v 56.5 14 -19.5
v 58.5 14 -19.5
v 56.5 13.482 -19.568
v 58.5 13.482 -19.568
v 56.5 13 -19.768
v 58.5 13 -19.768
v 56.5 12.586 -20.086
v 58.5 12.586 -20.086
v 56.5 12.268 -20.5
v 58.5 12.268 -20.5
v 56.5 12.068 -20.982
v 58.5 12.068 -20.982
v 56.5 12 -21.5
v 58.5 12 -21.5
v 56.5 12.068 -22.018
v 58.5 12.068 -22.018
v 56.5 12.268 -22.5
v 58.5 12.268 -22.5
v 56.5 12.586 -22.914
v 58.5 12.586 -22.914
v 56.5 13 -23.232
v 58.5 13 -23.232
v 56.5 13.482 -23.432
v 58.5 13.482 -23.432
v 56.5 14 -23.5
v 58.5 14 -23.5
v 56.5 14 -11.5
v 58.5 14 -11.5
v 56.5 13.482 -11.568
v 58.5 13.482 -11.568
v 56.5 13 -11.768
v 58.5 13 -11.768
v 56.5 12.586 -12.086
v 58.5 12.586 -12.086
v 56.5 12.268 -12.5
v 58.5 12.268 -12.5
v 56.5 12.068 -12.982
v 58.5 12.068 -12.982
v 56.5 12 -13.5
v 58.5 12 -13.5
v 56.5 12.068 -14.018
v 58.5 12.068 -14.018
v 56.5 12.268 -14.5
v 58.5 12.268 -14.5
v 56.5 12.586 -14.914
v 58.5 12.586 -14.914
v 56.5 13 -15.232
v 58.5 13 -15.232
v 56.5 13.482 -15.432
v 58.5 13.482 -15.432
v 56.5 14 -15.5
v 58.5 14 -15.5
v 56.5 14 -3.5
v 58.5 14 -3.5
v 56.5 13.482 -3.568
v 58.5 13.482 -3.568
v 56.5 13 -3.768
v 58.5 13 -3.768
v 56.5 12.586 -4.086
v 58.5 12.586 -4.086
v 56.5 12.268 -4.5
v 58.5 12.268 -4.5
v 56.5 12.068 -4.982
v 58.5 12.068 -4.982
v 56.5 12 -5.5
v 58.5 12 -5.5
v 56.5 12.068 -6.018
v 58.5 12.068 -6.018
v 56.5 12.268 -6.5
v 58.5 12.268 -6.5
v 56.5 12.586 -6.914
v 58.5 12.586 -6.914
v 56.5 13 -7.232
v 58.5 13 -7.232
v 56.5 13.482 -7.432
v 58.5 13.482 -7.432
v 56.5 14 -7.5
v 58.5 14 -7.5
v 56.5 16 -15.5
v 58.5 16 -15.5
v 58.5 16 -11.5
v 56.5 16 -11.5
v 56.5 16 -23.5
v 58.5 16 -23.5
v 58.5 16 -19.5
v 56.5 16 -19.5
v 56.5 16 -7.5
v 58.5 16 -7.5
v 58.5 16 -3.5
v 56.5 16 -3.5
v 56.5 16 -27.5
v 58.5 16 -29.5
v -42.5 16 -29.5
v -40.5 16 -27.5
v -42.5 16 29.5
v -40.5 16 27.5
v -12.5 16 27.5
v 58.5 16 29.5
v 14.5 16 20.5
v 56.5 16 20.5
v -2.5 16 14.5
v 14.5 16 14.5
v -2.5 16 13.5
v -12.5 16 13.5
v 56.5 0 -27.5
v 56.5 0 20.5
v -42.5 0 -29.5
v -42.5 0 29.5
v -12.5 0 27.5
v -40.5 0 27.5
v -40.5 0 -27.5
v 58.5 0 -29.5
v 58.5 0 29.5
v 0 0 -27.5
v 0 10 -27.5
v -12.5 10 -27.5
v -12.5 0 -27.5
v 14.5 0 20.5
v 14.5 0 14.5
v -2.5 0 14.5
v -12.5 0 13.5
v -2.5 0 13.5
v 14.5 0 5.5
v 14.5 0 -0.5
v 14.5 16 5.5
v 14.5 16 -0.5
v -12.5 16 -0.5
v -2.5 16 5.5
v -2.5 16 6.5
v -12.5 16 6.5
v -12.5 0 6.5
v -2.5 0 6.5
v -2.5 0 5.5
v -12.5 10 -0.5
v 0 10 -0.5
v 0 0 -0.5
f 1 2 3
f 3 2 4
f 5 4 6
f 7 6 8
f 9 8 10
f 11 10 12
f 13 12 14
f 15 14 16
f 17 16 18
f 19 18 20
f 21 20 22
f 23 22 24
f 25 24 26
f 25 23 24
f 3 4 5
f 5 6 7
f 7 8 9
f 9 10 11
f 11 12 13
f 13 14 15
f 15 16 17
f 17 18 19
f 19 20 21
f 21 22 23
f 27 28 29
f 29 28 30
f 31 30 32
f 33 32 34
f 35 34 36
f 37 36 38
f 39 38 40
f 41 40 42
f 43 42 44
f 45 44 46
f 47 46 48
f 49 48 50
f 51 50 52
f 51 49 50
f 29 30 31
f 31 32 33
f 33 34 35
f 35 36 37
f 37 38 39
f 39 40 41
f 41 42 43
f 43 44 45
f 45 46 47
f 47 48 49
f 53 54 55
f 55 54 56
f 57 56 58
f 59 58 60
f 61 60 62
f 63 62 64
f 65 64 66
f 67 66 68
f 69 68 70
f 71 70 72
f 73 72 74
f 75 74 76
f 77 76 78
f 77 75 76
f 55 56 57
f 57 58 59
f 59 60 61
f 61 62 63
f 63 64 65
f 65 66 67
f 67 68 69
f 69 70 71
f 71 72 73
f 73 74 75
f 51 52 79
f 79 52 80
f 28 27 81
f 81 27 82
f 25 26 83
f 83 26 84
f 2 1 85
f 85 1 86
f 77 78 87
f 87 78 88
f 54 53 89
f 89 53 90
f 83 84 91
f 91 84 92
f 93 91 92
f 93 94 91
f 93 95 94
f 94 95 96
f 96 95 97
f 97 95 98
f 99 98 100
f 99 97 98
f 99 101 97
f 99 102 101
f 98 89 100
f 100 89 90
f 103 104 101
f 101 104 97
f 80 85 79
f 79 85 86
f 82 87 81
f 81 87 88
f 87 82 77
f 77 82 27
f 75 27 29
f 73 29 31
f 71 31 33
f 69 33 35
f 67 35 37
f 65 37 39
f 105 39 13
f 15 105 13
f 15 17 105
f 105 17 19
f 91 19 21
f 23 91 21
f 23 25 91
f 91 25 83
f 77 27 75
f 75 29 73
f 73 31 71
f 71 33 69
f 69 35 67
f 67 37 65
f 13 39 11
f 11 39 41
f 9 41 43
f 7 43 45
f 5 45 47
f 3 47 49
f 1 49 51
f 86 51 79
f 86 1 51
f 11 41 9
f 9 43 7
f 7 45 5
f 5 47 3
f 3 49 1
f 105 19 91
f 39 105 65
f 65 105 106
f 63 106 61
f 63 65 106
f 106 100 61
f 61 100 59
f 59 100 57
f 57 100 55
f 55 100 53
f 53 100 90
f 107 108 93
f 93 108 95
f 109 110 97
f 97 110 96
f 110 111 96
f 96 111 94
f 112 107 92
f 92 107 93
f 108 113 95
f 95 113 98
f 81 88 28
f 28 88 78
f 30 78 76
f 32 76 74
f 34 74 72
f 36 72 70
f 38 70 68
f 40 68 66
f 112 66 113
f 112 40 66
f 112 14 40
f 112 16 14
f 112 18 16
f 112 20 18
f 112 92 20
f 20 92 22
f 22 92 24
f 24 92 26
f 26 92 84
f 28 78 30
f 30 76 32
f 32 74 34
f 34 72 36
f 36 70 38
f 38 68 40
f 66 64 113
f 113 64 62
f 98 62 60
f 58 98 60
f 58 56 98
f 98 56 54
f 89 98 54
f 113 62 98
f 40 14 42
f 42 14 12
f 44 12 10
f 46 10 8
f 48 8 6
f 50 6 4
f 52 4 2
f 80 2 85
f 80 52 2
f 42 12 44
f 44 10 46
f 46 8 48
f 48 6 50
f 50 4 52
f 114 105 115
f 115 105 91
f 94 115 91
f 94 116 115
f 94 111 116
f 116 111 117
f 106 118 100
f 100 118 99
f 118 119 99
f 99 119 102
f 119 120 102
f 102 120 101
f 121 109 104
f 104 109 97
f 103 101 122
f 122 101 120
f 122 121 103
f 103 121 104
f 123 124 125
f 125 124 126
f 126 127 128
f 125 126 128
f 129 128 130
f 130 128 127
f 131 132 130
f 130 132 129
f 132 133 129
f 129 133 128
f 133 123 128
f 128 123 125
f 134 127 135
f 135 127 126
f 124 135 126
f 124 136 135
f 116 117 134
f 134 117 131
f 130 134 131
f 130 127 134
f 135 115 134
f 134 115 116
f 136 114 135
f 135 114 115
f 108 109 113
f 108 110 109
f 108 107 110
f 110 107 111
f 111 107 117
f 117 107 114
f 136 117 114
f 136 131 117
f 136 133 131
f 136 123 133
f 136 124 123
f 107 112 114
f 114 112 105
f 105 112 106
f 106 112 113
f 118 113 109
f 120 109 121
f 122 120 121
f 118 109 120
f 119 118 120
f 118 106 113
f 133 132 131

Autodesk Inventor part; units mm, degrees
ref_plane "YZ Plane" through (0, 0, 0) normal (1, 0, 0) x (0, 1, 0)
ref_plane "XZ Plane" through (0, 0, 0) normal (0, 1, 0) x (-1, 0, 0)
ref_plane "XY Plane" through (0, 0, 0) normal (0, 0, 1) x (1, 0, 0)
sketch "Sketch1" plane through (0, 0, 0) normal (0, 1, 0) x (-1, 0, 0)
  line L0 (-58.5, 29.5) -> (42.5, 29.5)
  line L1 (42.5, 29.5) -> (42.5, -29.5)
  line L2 (42.5, -29.5) -> (-58.5, -29.5)
  line L3 (-58.5, -29.5) -> (-58.5, 29.5)
  line L4 (0, 10) -> (2.5, 10)
  line L5 (2.5, 10) -> (12.5, 10)
  line L6 (-14.5, 20.5) -> (-56.5, 20.5)
  line L7 (-56.5, 20.5) -> (-56.5, -0.5)
  line L8 (-56.5, -0.5) -> (-14.5, -0.5)
  line L9 (-14.5, -0.5) -> (-14.5, 20.5)
  line L10 (12.5, 13.5) -> (12.5, 6.5)
  line L11 (12.5, 6.5) -> (2.5, 6.5)
  line L12 (12.5, 13.5) -> (2.5, 13.5)
  line L13 (40.5, 27.5) -> (12.5, 27.5)
  line L14 (12.5, 27.5) -> (12.5, -27.5)
  line L15 (12.5, -27.5) -> (40.5, -27.5)
  line L16 (40.5, -27.5) -> (40.5, 27.5)
  line L17 (12.5, 27.5) -> (12.5, 29.5)
  line L18 (12.5, -27.5) -> (12.5, -29.5)
  line L19 (0, 0) -> (0, 10)
  line L20 (2.5, 13.5) -> (2.5, 6.5)
  line L21 (2.5, 14.5) -> (2.5, 5.5)
  line L22 (2.5, 5.5) -> (-14.5, 5.5)
  line L23 (2.5, 14.5) -> (-14.5, 14.5)
  line L24 (12.5, 0) -> (0, 0)
  line L25 (-56.5, -0.5) -> (12.5, -0.5)
  line L26 (12.5, -0.5) -> (12.5, -27.5)
  line L27 (12.5, -27.5) -> (-56.5, -27.5)
  line L28 (-56.5, -27.5) -> (-56.5, -0.5)
  line L29 (2.5, 5.5) -> (2.5, 0)
  point P0 (-8, 29.5)
  point P1 (0, 5.5)
  dimension "d2" = 2.5
  dimension "d3" = 10
  dimension "d4" = 7
  dimension "d5" = 21
  dimension "d6" = 42
  dimension "d9" = 28
  dimension "d10" = 55
  dimension "d13" = 10
  dimension "d14" = 9
  dimension "d15" = 17
  dimension "d16" = 2
  dimension "d17" = 2
  dimension "d20" = 2
  dimension "d28" = 101
  dimension "d29" = 59
  dimension "d34" = 42
  dimension "d35" = 27
  dimension "d37" = 12.5
sketch "Sketch2" plane through (0, 0, 0) normal (0, 1, 0) x (-1, 0, 0)
  line L0 (0, 0) -> (12.5, 0) projected
  line L1 (40.5, -27.5) -> (-56.5, -27.5) projected
  line L2 (12.5, 0) -> (12.5, -27.5)
  line L3 (12.5, 0) -> (0, 0)
  line L4 (0, 0) -> (0, -27.5)
  line L5 (0, -27.5) -> (12.5, -27.5)
  line L6 (12.5, -27.5) -> (12.5, 0)
  dimension "d36" = 56.5
extrude "Extrusion5" add sketch "Sketch2" along normal blind 10
extrude "Extrusion6" add sketch "Sketch1" along normal blind 16 contours L0 L17 L14 L12 L21 L23 L9 L6 L7 L28 L27 L18 L2 L3 | L0 L1 L2 L18 L15 L16 L13 L17 | L25 L9 L22 L19 L24 L14 | L14 L24 L29 L21 L11 | L24 L19 L22 L29
sketch "Sketch3" plane through (0, 16, 0) normal (0, 1, 0) x (1, 0, 0)
  line L0 (56.5, 3.5) -> (56.5, 7.5)
  line L1 (56.5, 7.5) -> (56.5, 11.5)
  line L2 (56.5, 11.5) -> (56.5, 15.5)
  line L3 (56.5, 15.5) -> (56.5, 19.5)
  line L4 (56.5, 19.5) -> (56.5, 23.5)
  line L5 (56.5, 23.5) -> (56.5, 27.5)
  line L6 (58.5, -29.5) -> (58.5, 29.5) projected
  line L7 (56.5, 23.5) -> (58.5, 23.5)
  line L8 (58.5, -29.5) -> (58.5, 29.5) projected
  line L9 (56.5, 19.5) -> (58.5, 19.5)
  line L10 (56.5, 15.5) -> (58.5, 15.5)
  line L11 (56.5, 11.5) -> (58.5, 11.5)
  line L12 (56.5, 7.5) -> (58.5, 7.5)
  line L13 (56.5, 3.5) -> (58.5, 3.5)
  point P0 (0, 0)
  dimension "d30" = 4
extrude "Extrusion7" cut sketch "Sketch3" against normal blind 4 contours L0 L12 L6 L13 | L2 L10 L6 L11 | L4 L7 L6 L9
fillet "Fillet1" radius 2 6 edges at (57.5, 12, -3.5) (57.5, 12, -11.5) (57.5, 12, -19.5) (57.5, 12, -23.5) (57.5, 12, -15.5) (57.5, 12, -7.5)
properties part number "Lag4"
